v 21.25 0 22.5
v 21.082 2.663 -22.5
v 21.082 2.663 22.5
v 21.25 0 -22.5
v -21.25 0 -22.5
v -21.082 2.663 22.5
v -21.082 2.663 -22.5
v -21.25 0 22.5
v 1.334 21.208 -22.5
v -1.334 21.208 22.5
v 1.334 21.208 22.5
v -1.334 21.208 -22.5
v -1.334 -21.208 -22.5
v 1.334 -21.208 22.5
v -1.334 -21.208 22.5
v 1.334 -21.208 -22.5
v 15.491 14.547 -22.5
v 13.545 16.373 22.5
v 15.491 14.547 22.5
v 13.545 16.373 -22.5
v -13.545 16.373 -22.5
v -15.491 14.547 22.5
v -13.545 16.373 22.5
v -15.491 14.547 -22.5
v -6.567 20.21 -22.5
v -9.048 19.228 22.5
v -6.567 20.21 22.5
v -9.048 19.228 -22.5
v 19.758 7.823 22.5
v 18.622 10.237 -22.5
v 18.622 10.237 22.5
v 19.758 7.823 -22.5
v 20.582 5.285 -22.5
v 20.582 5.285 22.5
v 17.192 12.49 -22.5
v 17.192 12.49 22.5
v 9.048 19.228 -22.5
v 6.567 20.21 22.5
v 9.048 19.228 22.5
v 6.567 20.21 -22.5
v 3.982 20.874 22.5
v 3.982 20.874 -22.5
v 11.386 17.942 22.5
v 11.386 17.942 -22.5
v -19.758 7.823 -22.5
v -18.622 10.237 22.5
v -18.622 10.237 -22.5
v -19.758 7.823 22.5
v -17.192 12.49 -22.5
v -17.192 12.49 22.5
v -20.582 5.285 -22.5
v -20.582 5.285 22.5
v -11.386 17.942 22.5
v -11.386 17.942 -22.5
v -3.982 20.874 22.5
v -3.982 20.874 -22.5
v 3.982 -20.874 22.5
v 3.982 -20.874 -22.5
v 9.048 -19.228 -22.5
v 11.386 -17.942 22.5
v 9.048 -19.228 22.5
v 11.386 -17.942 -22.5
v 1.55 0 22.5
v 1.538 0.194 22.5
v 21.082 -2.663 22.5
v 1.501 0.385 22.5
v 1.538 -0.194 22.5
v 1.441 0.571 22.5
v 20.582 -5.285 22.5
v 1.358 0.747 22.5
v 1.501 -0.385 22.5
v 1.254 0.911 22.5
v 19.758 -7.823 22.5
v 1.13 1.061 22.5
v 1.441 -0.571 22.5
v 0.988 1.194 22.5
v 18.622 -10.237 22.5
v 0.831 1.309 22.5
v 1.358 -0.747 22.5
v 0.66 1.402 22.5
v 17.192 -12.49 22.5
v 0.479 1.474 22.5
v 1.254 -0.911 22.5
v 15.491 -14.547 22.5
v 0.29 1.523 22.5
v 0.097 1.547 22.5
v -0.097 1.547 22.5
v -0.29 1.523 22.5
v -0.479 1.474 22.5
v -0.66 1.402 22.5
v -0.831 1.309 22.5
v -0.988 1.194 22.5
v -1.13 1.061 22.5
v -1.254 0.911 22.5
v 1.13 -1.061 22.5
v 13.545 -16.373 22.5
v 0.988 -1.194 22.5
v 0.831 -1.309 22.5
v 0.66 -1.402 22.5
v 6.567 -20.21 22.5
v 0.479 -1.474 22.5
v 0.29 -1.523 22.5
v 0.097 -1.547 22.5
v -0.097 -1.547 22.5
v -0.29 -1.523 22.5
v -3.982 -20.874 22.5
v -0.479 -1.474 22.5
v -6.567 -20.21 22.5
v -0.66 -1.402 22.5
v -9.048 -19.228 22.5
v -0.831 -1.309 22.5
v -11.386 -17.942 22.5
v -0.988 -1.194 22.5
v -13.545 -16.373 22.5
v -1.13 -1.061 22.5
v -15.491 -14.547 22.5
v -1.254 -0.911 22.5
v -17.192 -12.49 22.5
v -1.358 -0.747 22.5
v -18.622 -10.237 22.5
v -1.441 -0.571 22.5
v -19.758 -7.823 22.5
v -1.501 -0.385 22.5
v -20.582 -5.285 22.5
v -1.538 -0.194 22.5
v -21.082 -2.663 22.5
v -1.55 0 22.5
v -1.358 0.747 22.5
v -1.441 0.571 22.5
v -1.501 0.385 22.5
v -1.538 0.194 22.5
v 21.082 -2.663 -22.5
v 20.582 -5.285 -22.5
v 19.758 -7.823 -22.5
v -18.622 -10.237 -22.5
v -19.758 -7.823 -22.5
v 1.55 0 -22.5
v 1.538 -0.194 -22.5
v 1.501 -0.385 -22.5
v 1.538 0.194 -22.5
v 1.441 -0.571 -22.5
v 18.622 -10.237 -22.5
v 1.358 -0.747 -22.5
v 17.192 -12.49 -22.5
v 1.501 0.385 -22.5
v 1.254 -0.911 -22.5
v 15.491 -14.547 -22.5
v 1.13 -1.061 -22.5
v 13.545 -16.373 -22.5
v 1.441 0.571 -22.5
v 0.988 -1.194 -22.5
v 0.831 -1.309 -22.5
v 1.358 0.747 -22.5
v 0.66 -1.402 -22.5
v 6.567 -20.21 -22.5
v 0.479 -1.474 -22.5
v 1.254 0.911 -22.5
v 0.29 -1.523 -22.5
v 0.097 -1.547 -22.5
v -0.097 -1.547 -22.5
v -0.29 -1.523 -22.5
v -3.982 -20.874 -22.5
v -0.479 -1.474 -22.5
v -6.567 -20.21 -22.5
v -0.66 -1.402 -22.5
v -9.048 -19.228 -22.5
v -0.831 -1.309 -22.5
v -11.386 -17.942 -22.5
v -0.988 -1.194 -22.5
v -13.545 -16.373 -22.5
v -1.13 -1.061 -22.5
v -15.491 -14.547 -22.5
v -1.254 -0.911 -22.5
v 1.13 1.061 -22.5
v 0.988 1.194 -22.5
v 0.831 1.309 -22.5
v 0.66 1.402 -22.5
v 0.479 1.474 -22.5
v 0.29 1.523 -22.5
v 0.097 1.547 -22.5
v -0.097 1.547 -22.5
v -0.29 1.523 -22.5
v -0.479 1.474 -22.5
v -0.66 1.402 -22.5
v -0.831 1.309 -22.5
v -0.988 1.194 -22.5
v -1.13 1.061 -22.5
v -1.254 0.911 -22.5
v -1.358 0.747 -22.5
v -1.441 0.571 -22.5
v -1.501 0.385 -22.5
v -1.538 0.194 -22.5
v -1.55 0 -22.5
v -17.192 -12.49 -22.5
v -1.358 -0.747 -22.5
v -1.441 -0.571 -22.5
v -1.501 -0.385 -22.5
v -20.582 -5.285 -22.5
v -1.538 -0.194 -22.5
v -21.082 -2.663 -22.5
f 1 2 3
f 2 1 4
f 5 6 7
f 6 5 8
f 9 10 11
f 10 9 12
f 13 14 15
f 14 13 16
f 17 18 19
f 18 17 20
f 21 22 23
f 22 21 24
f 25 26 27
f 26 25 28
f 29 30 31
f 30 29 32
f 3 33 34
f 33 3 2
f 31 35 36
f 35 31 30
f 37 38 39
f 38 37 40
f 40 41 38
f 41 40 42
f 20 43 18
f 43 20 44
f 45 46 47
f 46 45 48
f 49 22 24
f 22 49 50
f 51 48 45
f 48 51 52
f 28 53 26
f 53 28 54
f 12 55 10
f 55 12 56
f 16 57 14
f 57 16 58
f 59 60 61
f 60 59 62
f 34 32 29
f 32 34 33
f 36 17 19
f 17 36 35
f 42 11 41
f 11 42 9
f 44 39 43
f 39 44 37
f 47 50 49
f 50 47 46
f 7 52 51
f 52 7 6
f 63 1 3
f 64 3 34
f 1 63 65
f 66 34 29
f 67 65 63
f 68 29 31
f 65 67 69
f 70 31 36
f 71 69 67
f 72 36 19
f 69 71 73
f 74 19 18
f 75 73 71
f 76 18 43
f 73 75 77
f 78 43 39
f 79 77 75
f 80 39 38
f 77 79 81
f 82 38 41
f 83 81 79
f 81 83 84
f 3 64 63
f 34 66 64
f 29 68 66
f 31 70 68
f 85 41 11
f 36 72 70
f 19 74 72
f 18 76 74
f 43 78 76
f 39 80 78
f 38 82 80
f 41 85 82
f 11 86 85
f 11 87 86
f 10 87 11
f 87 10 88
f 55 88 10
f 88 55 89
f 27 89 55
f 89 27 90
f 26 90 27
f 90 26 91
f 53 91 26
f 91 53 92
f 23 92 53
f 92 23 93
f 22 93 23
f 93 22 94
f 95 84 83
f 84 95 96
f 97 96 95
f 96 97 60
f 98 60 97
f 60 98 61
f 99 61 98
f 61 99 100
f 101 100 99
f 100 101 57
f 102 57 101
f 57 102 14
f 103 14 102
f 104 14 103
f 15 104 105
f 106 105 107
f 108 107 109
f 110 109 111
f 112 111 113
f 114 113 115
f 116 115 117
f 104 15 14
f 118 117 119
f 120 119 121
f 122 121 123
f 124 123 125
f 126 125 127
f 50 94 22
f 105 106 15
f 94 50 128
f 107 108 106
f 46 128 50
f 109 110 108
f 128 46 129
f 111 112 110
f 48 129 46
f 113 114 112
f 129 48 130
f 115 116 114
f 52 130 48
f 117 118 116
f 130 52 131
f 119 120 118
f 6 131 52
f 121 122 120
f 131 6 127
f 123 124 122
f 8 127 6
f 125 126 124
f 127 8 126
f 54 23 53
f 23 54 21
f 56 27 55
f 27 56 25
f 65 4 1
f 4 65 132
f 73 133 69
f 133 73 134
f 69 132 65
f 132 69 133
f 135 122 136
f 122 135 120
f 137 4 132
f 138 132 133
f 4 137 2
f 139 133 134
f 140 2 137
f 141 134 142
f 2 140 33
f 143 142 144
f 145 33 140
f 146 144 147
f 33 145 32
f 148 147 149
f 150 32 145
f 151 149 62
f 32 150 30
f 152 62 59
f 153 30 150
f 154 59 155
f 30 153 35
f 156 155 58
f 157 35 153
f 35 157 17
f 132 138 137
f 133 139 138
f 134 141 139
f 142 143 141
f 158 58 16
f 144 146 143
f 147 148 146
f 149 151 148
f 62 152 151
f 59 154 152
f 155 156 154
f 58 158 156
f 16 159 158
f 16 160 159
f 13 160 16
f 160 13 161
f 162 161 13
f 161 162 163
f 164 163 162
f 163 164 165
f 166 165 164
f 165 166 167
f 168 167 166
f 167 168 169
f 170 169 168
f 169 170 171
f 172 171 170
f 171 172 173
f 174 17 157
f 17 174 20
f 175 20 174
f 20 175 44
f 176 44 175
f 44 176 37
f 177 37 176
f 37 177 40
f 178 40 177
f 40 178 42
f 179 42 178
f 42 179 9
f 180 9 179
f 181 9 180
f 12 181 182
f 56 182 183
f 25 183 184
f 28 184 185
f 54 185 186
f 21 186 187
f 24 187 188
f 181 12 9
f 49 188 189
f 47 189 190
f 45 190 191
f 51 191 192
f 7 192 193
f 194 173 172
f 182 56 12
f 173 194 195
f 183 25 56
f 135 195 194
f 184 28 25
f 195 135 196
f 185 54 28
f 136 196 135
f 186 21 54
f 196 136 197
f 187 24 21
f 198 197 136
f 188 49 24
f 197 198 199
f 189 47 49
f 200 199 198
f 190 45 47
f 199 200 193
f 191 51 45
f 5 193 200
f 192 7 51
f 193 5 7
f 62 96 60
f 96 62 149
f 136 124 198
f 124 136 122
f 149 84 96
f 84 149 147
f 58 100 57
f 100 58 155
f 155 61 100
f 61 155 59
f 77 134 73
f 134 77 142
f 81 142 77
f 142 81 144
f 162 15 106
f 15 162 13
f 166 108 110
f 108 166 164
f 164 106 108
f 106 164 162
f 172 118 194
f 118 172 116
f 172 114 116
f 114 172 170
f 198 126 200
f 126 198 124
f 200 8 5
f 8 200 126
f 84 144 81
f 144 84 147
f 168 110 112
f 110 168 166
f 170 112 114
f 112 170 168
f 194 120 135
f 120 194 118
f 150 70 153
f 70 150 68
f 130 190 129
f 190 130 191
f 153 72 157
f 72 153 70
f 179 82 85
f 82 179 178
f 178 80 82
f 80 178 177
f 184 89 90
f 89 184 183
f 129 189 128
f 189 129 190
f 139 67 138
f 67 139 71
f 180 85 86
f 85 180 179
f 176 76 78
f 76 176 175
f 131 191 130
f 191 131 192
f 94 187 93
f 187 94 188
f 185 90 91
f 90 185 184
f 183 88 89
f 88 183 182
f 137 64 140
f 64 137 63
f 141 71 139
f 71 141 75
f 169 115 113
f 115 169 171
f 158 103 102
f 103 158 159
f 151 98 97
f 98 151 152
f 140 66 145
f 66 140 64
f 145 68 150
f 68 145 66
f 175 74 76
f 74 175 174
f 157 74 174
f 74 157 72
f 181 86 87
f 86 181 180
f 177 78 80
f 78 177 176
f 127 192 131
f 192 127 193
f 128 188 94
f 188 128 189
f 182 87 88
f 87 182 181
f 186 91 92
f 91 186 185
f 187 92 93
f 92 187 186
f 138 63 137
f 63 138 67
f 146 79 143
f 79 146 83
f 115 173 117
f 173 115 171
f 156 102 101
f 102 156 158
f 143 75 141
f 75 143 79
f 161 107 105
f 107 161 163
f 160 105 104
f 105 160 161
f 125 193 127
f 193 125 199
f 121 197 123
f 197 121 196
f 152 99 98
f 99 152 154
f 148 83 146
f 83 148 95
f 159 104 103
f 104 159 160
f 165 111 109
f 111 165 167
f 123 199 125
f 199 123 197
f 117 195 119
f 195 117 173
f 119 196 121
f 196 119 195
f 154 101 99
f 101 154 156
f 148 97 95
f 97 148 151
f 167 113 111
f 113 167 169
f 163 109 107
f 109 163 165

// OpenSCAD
$fn = 50;


difference() {
	union() {
		translate(v = [0, 0, -22.5000000000]) {
			cylinder(h = 45, r = 21.2500000000);
		}
	}
	union() {
		translate(v = [0, 0, -100.0000000000]) {
			cylinder(h = 200, r = 1.5500000000);
		}
	}
}
